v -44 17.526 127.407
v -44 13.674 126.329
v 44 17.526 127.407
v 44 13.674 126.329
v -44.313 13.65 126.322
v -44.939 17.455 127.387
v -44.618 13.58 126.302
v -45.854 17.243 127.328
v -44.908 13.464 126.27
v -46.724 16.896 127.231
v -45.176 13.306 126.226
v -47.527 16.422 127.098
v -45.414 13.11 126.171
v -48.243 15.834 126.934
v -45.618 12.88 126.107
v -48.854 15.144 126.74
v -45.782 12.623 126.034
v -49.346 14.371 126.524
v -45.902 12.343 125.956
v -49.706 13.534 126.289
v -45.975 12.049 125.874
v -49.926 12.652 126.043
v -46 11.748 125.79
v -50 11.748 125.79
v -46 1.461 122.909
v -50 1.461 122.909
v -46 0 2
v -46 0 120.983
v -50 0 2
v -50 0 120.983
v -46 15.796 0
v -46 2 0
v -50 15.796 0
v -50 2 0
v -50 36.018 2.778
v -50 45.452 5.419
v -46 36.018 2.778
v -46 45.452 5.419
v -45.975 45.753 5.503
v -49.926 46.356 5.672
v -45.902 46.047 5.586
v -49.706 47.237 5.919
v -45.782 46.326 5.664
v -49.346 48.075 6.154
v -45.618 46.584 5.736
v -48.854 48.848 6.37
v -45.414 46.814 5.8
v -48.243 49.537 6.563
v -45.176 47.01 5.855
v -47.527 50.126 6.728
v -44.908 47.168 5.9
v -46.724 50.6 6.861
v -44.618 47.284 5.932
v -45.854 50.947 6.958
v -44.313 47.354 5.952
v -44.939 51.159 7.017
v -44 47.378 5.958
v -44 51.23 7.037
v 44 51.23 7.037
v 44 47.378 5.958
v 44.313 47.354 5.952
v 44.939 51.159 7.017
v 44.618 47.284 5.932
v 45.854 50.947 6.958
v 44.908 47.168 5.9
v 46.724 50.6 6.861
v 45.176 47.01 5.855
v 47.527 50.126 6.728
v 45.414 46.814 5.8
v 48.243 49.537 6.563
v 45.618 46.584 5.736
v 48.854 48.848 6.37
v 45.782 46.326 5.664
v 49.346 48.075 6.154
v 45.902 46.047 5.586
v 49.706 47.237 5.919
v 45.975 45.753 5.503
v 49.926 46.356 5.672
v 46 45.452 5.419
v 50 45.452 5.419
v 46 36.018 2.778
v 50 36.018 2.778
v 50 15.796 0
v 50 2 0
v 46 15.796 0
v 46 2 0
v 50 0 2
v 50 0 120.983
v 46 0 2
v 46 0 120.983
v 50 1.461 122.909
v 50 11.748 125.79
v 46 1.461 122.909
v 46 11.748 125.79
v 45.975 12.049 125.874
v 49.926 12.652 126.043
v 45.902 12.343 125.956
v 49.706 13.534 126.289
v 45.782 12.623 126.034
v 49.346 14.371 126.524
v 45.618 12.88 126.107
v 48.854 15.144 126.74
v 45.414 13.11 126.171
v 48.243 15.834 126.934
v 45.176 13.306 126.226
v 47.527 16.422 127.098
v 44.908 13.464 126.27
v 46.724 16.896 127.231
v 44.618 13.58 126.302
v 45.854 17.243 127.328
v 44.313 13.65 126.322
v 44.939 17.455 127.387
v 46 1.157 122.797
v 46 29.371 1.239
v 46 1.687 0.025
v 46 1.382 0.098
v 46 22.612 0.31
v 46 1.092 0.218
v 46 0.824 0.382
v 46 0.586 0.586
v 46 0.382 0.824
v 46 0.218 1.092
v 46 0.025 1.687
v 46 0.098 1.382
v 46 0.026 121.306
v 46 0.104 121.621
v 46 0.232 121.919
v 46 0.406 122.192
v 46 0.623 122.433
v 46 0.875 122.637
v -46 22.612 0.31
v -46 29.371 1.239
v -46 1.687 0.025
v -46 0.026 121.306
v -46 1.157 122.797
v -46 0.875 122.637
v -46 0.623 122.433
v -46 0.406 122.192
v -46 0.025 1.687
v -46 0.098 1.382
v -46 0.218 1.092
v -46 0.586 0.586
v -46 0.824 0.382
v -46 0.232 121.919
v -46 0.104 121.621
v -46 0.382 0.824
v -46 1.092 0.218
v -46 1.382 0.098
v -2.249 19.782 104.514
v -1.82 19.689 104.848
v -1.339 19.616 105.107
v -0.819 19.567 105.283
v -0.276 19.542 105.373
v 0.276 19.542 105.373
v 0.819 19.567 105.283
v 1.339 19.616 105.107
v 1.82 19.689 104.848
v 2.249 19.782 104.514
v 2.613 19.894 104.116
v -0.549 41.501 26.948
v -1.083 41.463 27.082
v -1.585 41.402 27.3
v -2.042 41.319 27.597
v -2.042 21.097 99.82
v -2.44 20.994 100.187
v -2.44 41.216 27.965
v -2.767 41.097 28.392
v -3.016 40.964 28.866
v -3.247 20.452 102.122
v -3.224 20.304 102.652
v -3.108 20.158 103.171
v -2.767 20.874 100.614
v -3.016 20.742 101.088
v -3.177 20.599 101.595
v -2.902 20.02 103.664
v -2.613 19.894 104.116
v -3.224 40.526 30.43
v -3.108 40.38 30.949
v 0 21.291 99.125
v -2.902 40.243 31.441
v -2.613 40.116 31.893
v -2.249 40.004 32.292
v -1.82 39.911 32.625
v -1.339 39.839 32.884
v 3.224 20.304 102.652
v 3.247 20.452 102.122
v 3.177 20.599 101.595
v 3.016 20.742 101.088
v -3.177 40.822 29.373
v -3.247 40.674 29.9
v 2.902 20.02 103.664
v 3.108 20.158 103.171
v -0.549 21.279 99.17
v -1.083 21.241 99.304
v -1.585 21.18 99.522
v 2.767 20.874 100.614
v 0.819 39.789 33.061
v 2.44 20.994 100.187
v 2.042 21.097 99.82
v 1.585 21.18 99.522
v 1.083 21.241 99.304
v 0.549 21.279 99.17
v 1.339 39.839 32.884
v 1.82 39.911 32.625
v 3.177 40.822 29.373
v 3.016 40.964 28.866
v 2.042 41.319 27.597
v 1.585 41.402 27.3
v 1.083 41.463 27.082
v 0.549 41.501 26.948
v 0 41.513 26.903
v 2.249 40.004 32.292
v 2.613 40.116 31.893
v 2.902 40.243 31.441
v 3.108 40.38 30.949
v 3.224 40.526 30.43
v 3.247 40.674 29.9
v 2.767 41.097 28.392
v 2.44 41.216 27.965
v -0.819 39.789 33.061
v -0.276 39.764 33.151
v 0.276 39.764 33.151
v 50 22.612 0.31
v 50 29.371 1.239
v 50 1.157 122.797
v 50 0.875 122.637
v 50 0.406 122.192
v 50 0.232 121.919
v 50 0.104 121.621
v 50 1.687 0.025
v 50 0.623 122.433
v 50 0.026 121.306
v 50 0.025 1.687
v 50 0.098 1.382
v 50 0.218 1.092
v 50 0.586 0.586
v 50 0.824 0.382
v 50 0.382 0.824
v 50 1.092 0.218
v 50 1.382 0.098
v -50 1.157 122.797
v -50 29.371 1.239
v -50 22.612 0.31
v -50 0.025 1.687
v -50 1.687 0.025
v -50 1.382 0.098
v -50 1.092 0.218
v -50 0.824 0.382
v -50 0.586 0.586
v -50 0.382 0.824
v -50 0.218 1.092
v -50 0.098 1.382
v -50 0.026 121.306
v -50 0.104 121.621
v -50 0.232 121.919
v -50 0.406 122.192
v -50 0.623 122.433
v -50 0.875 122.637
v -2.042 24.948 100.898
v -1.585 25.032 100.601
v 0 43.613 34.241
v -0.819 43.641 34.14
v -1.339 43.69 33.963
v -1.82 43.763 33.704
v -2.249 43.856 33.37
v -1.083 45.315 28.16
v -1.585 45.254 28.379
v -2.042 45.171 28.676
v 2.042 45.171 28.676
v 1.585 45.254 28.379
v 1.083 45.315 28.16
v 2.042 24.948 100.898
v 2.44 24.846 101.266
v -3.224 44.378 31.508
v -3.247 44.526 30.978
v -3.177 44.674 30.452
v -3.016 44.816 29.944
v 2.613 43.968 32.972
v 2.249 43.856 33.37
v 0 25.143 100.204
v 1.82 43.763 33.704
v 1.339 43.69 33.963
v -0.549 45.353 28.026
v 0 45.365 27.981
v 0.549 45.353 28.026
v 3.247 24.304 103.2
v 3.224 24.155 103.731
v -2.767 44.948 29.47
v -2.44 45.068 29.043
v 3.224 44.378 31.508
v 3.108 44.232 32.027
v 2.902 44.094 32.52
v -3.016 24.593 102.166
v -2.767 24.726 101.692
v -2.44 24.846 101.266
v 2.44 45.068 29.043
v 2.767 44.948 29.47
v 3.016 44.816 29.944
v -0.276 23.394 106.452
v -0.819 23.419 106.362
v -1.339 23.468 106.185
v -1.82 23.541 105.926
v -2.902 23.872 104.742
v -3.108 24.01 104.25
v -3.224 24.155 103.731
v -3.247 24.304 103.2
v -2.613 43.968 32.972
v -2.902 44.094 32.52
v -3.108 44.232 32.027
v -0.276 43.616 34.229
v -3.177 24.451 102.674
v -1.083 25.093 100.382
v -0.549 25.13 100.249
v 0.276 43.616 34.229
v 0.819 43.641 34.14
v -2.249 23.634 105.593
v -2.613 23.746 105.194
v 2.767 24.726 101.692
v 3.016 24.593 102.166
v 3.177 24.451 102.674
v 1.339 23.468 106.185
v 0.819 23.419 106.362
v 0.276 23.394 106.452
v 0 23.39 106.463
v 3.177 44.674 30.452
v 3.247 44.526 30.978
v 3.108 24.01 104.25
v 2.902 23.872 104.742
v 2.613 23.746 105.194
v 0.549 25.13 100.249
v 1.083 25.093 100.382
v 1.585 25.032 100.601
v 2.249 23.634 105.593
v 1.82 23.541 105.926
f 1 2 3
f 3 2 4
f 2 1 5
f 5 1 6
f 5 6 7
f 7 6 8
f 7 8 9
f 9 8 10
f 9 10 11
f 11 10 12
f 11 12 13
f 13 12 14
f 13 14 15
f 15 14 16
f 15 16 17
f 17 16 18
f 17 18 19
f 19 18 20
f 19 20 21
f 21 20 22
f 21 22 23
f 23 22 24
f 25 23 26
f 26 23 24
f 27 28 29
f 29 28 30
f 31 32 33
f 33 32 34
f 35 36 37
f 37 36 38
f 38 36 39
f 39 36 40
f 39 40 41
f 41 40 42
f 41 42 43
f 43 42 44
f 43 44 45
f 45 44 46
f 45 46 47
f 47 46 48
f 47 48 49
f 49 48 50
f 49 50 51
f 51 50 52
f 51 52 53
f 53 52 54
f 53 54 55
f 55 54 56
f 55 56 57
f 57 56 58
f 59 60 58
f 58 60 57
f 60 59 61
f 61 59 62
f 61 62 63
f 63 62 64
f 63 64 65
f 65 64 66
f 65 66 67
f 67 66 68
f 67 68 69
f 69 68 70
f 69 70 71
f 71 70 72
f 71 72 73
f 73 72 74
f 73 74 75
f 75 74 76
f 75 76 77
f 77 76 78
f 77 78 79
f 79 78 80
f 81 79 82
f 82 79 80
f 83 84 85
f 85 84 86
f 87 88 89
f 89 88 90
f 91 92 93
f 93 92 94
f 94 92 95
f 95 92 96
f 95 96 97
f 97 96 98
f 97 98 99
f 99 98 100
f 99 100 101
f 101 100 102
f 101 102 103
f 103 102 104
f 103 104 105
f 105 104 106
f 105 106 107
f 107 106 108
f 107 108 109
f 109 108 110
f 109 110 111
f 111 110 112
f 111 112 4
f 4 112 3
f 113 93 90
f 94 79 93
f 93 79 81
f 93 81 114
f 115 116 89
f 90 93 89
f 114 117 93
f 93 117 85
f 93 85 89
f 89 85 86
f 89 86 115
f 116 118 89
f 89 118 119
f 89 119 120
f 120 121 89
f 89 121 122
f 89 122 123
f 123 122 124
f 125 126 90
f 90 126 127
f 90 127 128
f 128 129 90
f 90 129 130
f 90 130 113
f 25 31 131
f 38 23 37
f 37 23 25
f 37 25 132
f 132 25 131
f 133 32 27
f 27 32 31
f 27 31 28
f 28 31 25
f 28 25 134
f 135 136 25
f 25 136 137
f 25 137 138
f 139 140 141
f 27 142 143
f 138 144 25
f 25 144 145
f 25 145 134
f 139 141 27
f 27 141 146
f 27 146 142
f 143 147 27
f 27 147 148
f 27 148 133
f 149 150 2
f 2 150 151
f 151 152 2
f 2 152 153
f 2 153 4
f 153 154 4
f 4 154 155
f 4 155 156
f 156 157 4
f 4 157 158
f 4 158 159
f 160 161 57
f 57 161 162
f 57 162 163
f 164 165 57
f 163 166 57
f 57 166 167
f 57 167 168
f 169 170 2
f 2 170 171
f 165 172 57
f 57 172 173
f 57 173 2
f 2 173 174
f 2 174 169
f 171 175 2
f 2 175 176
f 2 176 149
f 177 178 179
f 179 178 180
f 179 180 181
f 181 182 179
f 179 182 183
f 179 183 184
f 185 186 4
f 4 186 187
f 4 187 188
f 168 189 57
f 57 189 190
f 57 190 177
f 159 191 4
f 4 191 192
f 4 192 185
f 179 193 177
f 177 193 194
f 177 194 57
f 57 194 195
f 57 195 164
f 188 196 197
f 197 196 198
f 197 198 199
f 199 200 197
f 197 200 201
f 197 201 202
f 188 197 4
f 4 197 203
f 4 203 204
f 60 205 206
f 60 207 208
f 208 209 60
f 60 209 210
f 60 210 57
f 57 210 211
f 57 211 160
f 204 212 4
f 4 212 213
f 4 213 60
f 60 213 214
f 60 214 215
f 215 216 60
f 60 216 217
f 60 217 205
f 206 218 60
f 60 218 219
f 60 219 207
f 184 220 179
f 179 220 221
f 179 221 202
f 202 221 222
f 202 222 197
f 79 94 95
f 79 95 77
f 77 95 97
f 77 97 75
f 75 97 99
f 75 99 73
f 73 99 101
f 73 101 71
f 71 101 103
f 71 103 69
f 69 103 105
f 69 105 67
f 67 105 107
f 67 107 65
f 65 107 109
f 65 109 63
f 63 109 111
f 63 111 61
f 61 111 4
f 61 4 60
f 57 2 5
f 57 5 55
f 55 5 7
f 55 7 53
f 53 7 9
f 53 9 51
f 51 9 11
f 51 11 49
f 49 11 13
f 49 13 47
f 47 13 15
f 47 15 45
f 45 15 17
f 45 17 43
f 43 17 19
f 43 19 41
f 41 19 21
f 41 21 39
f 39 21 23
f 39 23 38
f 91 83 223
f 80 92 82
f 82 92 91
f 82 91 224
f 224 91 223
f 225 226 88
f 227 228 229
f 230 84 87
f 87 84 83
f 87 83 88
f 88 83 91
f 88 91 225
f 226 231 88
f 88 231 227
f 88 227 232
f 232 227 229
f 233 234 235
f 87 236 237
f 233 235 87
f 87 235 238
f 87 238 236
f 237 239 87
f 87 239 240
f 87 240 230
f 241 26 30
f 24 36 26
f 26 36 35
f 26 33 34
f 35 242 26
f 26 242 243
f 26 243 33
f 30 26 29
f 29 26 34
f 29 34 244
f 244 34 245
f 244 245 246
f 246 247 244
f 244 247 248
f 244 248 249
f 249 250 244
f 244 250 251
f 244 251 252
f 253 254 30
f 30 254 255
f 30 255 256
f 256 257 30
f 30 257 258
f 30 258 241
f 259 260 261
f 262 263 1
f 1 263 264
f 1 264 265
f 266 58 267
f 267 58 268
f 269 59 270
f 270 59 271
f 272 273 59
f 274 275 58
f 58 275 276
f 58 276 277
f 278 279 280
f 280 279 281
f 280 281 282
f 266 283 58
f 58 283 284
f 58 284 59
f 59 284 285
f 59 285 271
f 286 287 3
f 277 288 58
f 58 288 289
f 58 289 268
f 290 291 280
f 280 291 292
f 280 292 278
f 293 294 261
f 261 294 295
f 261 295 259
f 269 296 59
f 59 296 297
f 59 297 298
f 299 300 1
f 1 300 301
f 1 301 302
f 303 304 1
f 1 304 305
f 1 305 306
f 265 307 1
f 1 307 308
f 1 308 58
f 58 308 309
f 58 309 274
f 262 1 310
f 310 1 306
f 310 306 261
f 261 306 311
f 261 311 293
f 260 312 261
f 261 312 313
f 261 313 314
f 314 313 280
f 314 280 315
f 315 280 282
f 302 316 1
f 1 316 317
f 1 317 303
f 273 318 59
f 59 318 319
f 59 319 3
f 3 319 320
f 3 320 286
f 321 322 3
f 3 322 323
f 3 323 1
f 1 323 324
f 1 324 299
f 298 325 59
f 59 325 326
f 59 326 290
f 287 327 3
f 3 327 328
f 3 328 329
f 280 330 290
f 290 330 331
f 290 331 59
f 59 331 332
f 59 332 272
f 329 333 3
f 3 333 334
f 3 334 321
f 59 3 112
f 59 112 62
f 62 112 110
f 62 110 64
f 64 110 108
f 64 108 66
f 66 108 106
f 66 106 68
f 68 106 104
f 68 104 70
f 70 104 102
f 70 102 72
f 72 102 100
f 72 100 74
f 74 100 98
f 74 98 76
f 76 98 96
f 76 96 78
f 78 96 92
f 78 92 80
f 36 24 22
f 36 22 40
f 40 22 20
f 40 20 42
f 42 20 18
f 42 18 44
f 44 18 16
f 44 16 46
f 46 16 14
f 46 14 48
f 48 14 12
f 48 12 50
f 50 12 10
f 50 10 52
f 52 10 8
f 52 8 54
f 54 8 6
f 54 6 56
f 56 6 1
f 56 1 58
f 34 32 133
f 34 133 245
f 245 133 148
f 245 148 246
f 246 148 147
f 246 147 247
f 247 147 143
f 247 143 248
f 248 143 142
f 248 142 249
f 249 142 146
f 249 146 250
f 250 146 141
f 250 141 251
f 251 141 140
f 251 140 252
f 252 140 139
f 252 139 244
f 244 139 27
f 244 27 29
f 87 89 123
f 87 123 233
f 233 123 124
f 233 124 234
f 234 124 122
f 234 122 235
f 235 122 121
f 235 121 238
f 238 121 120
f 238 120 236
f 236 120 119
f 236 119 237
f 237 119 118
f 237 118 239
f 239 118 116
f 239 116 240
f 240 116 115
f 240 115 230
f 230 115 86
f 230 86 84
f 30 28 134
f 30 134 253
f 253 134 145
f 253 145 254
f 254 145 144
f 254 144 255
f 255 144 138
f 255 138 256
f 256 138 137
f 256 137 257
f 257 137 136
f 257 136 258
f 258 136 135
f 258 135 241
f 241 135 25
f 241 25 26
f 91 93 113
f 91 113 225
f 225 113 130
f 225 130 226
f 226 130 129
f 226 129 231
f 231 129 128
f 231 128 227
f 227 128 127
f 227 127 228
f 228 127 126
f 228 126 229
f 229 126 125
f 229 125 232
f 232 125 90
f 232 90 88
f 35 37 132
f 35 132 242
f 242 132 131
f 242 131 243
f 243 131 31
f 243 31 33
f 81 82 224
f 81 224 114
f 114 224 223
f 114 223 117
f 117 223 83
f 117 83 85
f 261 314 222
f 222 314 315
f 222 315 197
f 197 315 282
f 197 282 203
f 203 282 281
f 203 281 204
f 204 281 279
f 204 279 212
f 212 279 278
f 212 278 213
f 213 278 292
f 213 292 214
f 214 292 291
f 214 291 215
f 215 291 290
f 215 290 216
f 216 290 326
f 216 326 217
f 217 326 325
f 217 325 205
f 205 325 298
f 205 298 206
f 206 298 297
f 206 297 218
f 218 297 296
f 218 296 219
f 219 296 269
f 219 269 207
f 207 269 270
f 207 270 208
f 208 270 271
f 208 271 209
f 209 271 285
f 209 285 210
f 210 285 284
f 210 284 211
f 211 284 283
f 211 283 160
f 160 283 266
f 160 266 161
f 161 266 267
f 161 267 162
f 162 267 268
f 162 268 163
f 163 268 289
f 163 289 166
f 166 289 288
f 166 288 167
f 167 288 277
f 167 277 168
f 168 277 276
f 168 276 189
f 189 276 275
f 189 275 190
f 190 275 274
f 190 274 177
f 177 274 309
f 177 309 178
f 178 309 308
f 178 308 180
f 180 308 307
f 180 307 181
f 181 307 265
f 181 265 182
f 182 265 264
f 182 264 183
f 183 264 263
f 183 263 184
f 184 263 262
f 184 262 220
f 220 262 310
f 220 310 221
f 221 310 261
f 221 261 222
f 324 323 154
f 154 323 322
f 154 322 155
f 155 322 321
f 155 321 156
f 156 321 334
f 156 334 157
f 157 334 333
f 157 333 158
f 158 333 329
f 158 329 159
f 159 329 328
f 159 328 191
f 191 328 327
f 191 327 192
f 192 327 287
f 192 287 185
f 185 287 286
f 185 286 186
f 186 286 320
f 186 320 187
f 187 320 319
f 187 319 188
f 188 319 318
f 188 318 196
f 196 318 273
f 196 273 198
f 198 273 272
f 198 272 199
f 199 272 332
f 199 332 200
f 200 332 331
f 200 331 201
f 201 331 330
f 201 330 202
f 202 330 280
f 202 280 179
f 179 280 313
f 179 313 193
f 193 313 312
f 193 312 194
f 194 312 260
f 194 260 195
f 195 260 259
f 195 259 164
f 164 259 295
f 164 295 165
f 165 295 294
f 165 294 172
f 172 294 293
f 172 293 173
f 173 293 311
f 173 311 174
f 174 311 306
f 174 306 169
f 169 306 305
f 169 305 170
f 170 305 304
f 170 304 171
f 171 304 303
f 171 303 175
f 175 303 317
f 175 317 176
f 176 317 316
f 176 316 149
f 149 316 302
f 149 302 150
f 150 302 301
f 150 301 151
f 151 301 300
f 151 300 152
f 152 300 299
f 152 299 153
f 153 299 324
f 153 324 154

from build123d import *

# Parameters (mm, degrees)
BOSS_EXTRUDE1_DEPTH        = 50
SKETCH2_W                  = 92
SKETCH2_H                  = 47.229685849
CUT_EXTRUDE4_DEPTH         = 152.455959439
CONVERT_SOLID1_START       = -117.963163746
CONVERT_SOLID1_DEPTH       = 125
CONVERT_SOLID1_2_DEPTH     = 125
FILLET1_R                  = 2
FILLET2_R                  = 75
F_6_5_6_5_DIAMETER_HOLE1_D = 6.5
F_6_5_6_5_DIAMETER_HOLE2_D = 6.5


# Read off the part's stored shape, not the designer's step: Convert-Solid1
with BuildPart() as part:
    # Sketch1 → Boss-Extrude1 (new, symmetric)
    with BuildSketch(Plane(origin=(0, 0, 0), x_dir=(0, 0, -1), z_dir=(1, 0, 0))):
        Polygon((-127.407338719, 17.525945159), (-7.036836254, 51.229685849), (0, 26.098127798), (0, 0), (-122.500074074, 0), align=None)
    extrude(amount=BOSS_EXTRUDE1_DEPTH, both=True)

    # Sketch2 → Cut-Extrude4 (cut, through all)
    with BuildSketch(Plane(origin=(0, 1.897341635, -6.776220126), x_dir=(-1, 0, 0), z_dir=(0, 0.2696299255199709, -0.9629640197141818))):
        with Locations((0, 23.614842925)):
            Rectangle(SKETCH2_W, SKETCH2_H)
    extrude(amount=-CUT_EXTRUDE4_DEPTH, mode=Mode.SUBTRACT)

    # Convert-Solid1 outline → Convert-Solid1 (cut)
    with BuildSketch(Plane(origin=(0, 0, 0), x_dir=(1, 0, 0), z_dir=(0, 0.26962992551997095, -0.9629640197141818)).offset(CONVERT_SOLID1_START)):
        with BuildLine():
            Line((50, -51.229685849), (50, -45.229685849))
            ThreePointArc((50, -45.229685849), (48.242640687, -49.472326536), (44, -51.229685849))
            Line((44, -51.229685849), (50, -51.229685849))
        make_face()
        with BuildLine():
            Line((-50, -51.229685849), (-44, -51.229685849))
            ThreePointArc((-44, -51.229685849), (-48.242640687, -49.472326536), (-50, -45.229685849))
            Line((-50, -45.229685849), (-50, -51.229685849))
        make_face()
    extrude(amount=CONVERT_SOLID1_DEPTH, mode=Mode.SUBTRACT)

    # Convert-Solid1 2 outline → Convert-Solid1 2 (add)
    with BuildSketch(Plane(origin=(0, 0, 0), x_dir=(1, 0, 0), z_dir=(0, 0.26962992551997095, -0.9629640197141818)).offset(CONVERT_SOLID1_START)):
        with BuildLine():
            Line((46, -47.229685849), (46, -45.229685849))
            ThreePointArc((46, -45.229685849), (45.414213562, -46.643899411), (44, -47.229685849))
            Line((44, -47.229685849), (46, -47.229685849))
        make_face()
        with BuildLine():
            Line((-46, -47.229685849), (-44, -47.229685849))
            ThreePointArc((-44, -47.229685849), (-45.414213562, -46.643899411), (-46, -45.229685849))
            Line((-46, -45.229685849), (-46, -47.229685849))
        make_face()
    extrude(amount=CONVERT_SOLID1_2_DEPTH)

    # Fillet1
    fillet1_edges = [part.edges().sort_by_distance(p)[0] for p in [
        (48, 0, 122.500074074),
        (48, 0, 0),
        (-48, 0, 0),
        (-48, 0, 122.500074074),
    ]]
    fillet(fillet1_edges, radius=FILLET1_R)

    # Fillet2
    fillet2_edges = [part.edges().sort_by_distance(p)[0] for p in [
        (48, 26.098127798, 0),
        (-48, 26.098127798, 0),
    ]]
    fillet(fillet2_edges, radius=FILLET2_R)

    # Ø6.5 (6.5) Diameter Hole1 (through all)
    with Locations(Plane(origin=(92.5, 101.400740105, -186.980648929), x_dir=(-1, 0, 0), z_dir=(0, -0.9629640197141818, -0.2696299255199709))):
        with Locations((92.5, -300.359475049), (92.5, -225.359475049), (-92.5, -300.359475049), (-92.5, -225.359475049)):
            Hole(F_6_5_6_5_DIAMETER_HOLE1_D / 2)

    # Ø6.5 (6.5) Diameter Hole2 (through all)
    with Locations(Plane(origin=(-92.5, 101.400740105, -186.980648929), x_dir=(-1, 0, 0), z_dir=(0, -0.9629640197141818, -0.2696299255199709))):
        with Locations((92.5, -300.359475049), (92.5, -225.359475049), (-92.5, -300.359475049), (-92.5, -225.359475049)):
            Hole(F_6_5_6_5_DIAMETER_HOLE2_D / 2)


solid = part.part
